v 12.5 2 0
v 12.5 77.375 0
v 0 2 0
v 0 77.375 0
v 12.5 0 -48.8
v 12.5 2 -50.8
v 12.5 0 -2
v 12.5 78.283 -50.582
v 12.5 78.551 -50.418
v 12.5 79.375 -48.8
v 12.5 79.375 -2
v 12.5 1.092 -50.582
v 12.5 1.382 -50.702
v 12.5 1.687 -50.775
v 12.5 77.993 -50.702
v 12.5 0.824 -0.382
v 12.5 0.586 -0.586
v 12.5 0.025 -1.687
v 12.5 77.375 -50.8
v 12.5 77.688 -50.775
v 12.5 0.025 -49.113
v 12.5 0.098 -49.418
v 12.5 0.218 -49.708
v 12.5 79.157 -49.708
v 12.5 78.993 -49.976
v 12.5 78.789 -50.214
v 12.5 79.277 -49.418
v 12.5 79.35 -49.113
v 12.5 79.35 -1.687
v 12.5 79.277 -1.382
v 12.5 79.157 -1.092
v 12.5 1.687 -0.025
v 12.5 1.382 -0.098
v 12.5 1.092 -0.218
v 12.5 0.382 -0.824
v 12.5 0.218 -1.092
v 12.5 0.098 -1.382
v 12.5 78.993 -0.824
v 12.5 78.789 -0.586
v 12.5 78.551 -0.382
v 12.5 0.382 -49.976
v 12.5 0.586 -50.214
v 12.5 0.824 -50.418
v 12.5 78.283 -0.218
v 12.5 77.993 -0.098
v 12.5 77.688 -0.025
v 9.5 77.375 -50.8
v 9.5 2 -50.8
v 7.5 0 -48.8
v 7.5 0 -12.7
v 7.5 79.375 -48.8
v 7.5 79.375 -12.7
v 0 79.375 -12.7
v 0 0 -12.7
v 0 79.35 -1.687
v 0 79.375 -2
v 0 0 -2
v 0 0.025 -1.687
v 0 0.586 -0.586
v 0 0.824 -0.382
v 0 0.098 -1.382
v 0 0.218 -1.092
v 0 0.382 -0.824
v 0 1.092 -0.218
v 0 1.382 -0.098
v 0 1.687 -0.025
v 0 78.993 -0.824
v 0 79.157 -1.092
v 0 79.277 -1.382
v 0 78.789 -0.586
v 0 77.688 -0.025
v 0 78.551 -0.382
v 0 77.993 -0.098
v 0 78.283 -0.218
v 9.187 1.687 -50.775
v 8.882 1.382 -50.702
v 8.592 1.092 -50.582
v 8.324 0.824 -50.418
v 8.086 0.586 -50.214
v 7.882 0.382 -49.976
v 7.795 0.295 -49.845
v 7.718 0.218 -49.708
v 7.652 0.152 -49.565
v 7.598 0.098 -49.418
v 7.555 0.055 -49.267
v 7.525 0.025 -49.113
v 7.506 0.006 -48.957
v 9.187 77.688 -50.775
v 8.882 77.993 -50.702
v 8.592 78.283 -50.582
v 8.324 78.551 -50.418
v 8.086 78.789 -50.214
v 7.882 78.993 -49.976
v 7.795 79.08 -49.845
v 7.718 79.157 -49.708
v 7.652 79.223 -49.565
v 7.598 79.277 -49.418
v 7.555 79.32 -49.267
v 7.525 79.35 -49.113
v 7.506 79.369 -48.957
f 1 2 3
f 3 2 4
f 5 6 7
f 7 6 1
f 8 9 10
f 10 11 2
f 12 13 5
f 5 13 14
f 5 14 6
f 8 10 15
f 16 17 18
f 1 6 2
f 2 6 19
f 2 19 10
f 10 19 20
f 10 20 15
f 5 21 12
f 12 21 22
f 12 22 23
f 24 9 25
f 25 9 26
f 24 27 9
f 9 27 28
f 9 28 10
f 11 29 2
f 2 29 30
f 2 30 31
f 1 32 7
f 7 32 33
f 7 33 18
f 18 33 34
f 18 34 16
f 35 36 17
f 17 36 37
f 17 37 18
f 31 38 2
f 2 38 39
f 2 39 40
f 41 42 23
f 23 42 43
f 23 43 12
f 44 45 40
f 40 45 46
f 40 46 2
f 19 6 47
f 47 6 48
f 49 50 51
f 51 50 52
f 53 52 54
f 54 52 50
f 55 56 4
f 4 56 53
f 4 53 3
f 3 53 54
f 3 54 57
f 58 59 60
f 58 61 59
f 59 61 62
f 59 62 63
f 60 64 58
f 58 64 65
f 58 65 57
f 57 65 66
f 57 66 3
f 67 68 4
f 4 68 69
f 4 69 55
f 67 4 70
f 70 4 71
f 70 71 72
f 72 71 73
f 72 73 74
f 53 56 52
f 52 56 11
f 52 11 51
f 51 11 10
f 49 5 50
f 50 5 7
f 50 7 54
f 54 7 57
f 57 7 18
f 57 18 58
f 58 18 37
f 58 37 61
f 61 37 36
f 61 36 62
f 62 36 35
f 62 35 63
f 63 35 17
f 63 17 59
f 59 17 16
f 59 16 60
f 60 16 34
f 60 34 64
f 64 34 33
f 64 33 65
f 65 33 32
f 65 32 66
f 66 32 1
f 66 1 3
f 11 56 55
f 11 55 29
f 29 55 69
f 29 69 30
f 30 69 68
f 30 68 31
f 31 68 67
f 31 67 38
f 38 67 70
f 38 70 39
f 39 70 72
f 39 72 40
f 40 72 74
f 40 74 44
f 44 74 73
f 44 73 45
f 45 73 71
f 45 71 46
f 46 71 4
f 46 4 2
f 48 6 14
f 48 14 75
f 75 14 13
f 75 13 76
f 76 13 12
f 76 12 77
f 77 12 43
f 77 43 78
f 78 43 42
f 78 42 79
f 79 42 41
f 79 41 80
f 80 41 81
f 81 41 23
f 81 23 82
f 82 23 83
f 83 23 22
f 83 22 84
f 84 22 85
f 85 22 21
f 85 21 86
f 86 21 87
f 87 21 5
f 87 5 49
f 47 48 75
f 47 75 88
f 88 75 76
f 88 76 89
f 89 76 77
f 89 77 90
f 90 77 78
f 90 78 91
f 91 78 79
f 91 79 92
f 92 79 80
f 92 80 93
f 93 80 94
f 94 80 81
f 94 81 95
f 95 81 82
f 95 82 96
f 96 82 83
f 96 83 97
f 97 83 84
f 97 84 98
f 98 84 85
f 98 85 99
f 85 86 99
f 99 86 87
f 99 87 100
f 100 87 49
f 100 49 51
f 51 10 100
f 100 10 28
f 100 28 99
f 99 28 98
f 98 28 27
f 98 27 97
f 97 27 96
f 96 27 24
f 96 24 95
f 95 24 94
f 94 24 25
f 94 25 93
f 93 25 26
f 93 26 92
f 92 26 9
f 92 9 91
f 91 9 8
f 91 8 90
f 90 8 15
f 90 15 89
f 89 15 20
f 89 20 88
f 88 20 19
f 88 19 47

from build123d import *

# Parameters (mm, degrees)
SKETCH1_W           = 7.5
SKETCH1_H           = 12.7
BOSS_EXTRUDE1_DEPTH = 79.375
FILLET1_R           = 2


with BuildPart() as part:
    # Sketch1 → Boss-Extrude1 (new body)
    with BuildSketch(Plane(origin=(0, 0, 0), x_dir=(1, 0, 0), z_dir=(0, 1, 0))):
        with Locations((3.75, 6.35)):
            Rectangle(SKETCH1_W, SKETCH1_H)
        Polygon((7.5, 12.7), (7.5, 0), (12.5, 0), (12.5, 50.8), (7.5, 50.8), align=None)
    extrude(amount=BOSS_EXTRUDE1_DEPTH)

    # Fillet1
    fillet1_edges = [part.edges().sort_by_distance(p)[0] for p in [
        (6.25, 0, 0),
        (7.5, 39.6875, -50.8),
        (10, 79.375, -50.8),
        (6.25, 79.375, 0),
        (10, 0, -50.8),
    ]]
    fillet(fillet1_edges, radius=FILLET1_R)


solid = part.part
